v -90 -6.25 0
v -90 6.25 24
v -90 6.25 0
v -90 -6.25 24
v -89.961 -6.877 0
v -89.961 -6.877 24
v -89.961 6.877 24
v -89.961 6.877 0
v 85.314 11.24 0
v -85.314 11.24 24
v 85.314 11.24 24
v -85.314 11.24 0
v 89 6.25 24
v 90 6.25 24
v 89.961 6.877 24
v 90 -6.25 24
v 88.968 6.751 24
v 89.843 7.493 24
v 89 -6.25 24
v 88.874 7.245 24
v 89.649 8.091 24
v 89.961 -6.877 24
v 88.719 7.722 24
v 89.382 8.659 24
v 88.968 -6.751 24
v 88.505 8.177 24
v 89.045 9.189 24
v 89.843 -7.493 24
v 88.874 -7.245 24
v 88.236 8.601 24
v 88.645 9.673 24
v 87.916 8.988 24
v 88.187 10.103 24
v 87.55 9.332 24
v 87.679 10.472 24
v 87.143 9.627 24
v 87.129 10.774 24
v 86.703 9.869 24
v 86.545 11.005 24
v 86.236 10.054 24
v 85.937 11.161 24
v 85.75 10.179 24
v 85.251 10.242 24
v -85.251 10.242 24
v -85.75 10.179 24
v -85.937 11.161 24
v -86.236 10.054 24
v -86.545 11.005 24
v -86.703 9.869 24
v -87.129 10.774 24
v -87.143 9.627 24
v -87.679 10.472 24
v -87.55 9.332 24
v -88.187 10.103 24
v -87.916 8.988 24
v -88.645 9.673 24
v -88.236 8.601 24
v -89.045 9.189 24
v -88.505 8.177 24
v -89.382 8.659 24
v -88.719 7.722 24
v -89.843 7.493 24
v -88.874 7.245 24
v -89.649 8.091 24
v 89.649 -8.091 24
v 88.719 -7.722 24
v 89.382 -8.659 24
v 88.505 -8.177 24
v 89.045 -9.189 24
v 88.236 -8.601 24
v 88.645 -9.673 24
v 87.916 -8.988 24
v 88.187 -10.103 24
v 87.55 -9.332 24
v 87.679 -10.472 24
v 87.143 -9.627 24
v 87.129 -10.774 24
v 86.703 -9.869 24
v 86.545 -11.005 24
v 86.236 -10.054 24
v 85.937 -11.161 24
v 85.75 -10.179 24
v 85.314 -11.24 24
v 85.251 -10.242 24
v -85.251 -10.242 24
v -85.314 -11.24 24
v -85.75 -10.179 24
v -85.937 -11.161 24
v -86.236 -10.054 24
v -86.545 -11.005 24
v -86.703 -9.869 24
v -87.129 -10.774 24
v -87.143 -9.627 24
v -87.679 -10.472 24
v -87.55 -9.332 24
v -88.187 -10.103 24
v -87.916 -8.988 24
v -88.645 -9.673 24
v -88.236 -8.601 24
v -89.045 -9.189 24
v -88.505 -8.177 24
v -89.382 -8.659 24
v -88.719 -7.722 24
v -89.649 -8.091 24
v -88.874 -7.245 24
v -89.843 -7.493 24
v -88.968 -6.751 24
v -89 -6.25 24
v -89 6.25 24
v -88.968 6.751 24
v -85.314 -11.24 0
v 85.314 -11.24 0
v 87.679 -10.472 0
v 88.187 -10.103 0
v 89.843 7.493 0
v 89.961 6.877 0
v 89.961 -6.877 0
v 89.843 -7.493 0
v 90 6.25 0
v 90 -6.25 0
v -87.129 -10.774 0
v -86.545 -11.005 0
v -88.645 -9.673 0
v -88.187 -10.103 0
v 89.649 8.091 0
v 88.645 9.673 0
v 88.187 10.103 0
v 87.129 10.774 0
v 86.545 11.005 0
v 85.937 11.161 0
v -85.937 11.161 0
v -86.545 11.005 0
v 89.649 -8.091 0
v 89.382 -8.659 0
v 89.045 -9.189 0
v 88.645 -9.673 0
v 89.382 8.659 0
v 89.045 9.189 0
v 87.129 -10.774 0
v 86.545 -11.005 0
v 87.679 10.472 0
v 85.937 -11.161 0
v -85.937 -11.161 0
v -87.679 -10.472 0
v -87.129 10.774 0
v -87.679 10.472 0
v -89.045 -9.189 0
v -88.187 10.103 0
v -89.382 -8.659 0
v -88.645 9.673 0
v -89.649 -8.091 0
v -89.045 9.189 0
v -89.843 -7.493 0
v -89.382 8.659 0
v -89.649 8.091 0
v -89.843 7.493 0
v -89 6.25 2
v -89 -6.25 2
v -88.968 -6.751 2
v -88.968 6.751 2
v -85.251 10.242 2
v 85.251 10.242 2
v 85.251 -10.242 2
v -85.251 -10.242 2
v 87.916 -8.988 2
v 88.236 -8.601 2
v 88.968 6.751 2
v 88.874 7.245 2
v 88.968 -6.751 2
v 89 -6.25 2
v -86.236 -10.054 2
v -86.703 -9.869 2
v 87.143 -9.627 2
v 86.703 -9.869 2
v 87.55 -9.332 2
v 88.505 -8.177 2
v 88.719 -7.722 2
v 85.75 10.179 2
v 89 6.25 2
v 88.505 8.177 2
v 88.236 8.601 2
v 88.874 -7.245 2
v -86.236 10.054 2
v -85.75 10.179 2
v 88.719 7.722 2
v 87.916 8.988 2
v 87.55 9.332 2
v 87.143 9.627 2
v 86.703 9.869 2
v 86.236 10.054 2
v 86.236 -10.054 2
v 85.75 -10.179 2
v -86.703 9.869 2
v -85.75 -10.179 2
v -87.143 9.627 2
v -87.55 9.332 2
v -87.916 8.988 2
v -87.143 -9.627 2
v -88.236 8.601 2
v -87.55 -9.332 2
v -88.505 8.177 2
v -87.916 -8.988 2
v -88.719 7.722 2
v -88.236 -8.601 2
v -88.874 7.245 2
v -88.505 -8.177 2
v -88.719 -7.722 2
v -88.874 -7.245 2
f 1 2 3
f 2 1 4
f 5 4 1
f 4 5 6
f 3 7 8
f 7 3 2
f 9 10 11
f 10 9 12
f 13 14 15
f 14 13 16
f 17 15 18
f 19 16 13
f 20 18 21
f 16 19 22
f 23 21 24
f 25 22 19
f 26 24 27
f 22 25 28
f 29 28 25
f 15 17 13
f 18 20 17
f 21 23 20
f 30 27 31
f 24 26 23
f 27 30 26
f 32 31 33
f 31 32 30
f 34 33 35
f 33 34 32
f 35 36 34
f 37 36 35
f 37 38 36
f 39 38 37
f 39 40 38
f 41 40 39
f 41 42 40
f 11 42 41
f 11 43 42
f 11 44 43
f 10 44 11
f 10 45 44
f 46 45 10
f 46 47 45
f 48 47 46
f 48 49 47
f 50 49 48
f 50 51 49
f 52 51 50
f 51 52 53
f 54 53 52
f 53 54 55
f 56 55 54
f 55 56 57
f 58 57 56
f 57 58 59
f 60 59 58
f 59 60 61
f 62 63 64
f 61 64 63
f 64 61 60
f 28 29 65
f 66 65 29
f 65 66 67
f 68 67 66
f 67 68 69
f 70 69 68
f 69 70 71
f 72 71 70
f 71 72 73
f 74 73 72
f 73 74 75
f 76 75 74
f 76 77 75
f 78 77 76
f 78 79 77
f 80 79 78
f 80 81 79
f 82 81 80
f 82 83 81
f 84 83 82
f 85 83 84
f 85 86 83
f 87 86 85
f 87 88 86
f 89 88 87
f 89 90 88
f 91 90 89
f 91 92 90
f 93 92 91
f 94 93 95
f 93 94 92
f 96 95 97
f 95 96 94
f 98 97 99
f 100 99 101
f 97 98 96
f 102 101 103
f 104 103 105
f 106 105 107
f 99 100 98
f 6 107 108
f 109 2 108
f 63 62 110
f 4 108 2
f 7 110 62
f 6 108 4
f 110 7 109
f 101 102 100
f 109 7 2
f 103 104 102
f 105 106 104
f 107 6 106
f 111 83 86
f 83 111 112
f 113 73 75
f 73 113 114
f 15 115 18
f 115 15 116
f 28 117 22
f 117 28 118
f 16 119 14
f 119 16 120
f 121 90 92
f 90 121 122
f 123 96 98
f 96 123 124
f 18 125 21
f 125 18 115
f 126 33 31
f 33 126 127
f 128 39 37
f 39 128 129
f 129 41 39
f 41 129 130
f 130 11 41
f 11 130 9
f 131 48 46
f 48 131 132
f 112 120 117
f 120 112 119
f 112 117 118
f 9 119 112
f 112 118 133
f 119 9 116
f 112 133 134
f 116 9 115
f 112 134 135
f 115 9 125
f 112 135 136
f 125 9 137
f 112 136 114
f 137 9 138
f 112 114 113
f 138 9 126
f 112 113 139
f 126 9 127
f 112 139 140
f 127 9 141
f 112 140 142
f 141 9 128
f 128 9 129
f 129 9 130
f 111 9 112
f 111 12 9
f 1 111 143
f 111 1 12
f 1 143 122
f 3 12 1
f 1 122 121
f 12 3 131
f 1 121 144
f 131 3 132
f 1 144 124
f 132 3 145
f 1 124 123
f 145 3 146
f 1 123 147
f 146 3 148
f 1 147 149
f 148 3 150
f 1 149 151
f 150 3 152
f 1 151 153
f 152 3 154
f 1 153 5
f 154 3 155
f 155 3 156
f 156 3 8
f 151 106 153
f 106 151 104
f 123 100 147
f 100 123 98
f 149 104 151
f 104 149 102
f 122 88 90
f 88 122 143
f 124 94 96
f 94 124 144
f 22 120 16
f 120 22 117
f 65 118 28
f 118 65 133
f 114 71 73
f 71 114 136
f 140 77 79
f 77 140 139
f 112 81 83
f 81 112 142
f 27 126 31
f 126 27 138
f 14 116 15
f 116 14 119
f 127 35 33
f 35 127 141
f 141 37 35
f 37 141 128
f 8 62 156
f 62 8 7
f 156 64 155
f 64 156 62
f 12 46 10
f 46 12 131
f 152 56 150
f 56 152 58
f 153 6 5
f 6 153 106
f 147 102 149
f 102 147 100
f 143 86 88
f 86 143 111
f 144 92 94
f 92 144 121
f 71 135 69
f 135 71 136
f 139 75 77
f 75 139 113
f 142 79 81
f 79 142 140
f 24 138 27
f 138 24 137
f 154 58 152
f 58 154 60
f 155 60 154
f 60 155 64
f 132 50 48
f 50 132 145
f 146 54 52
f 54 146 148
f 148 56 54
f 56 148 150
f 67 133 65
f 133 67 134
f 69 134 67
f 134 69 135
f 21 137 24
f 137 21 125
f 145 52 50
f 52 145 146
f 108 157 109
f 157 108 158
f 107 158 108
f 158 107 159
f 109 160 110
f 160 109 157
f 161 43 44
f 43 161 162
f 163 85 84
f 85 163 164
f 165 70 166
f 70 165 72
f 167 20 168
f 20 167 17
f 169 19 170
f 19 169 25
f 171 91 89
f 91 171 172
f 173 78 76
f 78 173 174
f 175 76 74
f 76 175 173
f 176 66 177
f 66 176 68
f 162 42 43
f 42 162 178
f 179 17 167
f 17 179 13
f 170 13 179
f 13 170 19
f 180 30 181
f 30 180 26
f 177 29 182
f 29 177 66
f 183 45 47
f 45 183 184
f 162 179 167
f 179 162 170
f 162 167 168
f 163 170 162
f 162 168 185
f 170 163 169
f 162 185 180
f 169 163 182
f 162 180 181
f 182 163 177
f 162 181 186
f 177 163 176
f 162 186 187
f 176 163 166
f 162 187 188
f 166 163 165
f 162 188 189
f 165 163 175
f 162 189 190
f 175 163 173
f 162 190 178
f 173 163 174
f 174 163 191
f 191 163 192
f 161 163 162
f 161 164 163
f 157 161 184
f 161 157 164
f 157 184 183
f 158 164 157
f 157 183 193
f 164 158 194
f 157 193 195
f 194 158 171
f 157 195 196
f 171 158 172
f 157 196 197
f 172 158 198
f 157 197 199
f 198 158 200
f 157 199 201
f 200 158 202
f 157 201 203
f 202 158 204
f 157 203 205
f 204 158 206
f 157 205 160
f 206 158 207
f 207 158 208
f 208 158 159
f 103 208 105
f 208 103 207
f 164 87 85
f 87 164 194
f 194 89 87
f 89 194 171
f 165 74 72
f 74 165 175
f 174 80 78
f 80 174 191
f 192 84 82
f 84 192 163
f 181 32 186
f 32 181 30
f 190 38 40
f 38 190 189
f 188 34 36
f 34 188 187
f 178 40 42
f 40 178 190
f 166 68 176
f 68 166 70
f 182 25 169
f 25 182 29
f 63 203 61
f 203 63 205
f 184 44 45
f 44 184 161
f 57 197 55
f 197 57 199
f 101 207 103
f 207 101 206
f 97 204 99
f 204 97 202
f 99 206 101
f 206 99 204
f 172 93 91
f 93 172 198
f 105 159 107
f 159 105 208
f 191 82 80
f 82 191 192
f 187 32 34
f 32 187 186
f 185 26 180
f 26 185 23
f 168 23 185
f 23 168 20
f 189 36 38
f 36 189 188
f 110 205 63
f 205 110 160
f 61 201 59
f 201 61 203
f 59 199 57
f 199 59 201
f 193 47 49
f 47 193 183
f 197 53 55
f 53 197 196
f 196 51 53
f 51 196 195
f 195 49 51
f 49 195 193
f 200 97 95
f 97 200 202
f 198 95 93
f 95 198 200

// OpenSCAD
$fn = 50;


difference() {
	union() {
		hull() {
			translate(v = [-85.0000000000, 6.2500000000, 0]) {
				cylinder(h = 24, r = 5);
			}
			translate(v = [85.0000000000, 6.2500000000, 0]) {
				cylinder(h = 24, r = 5);
			}
			translate(v = [-85.0000000000, -6.2500000000, 0]) {
				cylinder(h = 24, r = 5);
			}
			translate(v = [85.0000000000, -6.2500000000, 0]) {
				cylinder(h = 24, r = 5);
			}
		}
	}
	union() {
		translate(v = [0, 0, 2]) {
			hull() {
				translate(v = [-85.0000000000, 6.2500000000, 0]) {
					cylinder(h = 22, r = 4);
				}
				translate(v = [85.0000000000, 6.2500000000, 0]) {
					cylinder(h = 22, r = 4);
				}
				translate(v = [-85.0000000000, -6.2500000000, 0]) {
					cylinder(h = 22, r = 4);
				}
				translate(v = [85.0000000000, -6.2500000000, 0]) {
					cylinder(h = 22, r = 4);
				}
			}
		}
	}
}
